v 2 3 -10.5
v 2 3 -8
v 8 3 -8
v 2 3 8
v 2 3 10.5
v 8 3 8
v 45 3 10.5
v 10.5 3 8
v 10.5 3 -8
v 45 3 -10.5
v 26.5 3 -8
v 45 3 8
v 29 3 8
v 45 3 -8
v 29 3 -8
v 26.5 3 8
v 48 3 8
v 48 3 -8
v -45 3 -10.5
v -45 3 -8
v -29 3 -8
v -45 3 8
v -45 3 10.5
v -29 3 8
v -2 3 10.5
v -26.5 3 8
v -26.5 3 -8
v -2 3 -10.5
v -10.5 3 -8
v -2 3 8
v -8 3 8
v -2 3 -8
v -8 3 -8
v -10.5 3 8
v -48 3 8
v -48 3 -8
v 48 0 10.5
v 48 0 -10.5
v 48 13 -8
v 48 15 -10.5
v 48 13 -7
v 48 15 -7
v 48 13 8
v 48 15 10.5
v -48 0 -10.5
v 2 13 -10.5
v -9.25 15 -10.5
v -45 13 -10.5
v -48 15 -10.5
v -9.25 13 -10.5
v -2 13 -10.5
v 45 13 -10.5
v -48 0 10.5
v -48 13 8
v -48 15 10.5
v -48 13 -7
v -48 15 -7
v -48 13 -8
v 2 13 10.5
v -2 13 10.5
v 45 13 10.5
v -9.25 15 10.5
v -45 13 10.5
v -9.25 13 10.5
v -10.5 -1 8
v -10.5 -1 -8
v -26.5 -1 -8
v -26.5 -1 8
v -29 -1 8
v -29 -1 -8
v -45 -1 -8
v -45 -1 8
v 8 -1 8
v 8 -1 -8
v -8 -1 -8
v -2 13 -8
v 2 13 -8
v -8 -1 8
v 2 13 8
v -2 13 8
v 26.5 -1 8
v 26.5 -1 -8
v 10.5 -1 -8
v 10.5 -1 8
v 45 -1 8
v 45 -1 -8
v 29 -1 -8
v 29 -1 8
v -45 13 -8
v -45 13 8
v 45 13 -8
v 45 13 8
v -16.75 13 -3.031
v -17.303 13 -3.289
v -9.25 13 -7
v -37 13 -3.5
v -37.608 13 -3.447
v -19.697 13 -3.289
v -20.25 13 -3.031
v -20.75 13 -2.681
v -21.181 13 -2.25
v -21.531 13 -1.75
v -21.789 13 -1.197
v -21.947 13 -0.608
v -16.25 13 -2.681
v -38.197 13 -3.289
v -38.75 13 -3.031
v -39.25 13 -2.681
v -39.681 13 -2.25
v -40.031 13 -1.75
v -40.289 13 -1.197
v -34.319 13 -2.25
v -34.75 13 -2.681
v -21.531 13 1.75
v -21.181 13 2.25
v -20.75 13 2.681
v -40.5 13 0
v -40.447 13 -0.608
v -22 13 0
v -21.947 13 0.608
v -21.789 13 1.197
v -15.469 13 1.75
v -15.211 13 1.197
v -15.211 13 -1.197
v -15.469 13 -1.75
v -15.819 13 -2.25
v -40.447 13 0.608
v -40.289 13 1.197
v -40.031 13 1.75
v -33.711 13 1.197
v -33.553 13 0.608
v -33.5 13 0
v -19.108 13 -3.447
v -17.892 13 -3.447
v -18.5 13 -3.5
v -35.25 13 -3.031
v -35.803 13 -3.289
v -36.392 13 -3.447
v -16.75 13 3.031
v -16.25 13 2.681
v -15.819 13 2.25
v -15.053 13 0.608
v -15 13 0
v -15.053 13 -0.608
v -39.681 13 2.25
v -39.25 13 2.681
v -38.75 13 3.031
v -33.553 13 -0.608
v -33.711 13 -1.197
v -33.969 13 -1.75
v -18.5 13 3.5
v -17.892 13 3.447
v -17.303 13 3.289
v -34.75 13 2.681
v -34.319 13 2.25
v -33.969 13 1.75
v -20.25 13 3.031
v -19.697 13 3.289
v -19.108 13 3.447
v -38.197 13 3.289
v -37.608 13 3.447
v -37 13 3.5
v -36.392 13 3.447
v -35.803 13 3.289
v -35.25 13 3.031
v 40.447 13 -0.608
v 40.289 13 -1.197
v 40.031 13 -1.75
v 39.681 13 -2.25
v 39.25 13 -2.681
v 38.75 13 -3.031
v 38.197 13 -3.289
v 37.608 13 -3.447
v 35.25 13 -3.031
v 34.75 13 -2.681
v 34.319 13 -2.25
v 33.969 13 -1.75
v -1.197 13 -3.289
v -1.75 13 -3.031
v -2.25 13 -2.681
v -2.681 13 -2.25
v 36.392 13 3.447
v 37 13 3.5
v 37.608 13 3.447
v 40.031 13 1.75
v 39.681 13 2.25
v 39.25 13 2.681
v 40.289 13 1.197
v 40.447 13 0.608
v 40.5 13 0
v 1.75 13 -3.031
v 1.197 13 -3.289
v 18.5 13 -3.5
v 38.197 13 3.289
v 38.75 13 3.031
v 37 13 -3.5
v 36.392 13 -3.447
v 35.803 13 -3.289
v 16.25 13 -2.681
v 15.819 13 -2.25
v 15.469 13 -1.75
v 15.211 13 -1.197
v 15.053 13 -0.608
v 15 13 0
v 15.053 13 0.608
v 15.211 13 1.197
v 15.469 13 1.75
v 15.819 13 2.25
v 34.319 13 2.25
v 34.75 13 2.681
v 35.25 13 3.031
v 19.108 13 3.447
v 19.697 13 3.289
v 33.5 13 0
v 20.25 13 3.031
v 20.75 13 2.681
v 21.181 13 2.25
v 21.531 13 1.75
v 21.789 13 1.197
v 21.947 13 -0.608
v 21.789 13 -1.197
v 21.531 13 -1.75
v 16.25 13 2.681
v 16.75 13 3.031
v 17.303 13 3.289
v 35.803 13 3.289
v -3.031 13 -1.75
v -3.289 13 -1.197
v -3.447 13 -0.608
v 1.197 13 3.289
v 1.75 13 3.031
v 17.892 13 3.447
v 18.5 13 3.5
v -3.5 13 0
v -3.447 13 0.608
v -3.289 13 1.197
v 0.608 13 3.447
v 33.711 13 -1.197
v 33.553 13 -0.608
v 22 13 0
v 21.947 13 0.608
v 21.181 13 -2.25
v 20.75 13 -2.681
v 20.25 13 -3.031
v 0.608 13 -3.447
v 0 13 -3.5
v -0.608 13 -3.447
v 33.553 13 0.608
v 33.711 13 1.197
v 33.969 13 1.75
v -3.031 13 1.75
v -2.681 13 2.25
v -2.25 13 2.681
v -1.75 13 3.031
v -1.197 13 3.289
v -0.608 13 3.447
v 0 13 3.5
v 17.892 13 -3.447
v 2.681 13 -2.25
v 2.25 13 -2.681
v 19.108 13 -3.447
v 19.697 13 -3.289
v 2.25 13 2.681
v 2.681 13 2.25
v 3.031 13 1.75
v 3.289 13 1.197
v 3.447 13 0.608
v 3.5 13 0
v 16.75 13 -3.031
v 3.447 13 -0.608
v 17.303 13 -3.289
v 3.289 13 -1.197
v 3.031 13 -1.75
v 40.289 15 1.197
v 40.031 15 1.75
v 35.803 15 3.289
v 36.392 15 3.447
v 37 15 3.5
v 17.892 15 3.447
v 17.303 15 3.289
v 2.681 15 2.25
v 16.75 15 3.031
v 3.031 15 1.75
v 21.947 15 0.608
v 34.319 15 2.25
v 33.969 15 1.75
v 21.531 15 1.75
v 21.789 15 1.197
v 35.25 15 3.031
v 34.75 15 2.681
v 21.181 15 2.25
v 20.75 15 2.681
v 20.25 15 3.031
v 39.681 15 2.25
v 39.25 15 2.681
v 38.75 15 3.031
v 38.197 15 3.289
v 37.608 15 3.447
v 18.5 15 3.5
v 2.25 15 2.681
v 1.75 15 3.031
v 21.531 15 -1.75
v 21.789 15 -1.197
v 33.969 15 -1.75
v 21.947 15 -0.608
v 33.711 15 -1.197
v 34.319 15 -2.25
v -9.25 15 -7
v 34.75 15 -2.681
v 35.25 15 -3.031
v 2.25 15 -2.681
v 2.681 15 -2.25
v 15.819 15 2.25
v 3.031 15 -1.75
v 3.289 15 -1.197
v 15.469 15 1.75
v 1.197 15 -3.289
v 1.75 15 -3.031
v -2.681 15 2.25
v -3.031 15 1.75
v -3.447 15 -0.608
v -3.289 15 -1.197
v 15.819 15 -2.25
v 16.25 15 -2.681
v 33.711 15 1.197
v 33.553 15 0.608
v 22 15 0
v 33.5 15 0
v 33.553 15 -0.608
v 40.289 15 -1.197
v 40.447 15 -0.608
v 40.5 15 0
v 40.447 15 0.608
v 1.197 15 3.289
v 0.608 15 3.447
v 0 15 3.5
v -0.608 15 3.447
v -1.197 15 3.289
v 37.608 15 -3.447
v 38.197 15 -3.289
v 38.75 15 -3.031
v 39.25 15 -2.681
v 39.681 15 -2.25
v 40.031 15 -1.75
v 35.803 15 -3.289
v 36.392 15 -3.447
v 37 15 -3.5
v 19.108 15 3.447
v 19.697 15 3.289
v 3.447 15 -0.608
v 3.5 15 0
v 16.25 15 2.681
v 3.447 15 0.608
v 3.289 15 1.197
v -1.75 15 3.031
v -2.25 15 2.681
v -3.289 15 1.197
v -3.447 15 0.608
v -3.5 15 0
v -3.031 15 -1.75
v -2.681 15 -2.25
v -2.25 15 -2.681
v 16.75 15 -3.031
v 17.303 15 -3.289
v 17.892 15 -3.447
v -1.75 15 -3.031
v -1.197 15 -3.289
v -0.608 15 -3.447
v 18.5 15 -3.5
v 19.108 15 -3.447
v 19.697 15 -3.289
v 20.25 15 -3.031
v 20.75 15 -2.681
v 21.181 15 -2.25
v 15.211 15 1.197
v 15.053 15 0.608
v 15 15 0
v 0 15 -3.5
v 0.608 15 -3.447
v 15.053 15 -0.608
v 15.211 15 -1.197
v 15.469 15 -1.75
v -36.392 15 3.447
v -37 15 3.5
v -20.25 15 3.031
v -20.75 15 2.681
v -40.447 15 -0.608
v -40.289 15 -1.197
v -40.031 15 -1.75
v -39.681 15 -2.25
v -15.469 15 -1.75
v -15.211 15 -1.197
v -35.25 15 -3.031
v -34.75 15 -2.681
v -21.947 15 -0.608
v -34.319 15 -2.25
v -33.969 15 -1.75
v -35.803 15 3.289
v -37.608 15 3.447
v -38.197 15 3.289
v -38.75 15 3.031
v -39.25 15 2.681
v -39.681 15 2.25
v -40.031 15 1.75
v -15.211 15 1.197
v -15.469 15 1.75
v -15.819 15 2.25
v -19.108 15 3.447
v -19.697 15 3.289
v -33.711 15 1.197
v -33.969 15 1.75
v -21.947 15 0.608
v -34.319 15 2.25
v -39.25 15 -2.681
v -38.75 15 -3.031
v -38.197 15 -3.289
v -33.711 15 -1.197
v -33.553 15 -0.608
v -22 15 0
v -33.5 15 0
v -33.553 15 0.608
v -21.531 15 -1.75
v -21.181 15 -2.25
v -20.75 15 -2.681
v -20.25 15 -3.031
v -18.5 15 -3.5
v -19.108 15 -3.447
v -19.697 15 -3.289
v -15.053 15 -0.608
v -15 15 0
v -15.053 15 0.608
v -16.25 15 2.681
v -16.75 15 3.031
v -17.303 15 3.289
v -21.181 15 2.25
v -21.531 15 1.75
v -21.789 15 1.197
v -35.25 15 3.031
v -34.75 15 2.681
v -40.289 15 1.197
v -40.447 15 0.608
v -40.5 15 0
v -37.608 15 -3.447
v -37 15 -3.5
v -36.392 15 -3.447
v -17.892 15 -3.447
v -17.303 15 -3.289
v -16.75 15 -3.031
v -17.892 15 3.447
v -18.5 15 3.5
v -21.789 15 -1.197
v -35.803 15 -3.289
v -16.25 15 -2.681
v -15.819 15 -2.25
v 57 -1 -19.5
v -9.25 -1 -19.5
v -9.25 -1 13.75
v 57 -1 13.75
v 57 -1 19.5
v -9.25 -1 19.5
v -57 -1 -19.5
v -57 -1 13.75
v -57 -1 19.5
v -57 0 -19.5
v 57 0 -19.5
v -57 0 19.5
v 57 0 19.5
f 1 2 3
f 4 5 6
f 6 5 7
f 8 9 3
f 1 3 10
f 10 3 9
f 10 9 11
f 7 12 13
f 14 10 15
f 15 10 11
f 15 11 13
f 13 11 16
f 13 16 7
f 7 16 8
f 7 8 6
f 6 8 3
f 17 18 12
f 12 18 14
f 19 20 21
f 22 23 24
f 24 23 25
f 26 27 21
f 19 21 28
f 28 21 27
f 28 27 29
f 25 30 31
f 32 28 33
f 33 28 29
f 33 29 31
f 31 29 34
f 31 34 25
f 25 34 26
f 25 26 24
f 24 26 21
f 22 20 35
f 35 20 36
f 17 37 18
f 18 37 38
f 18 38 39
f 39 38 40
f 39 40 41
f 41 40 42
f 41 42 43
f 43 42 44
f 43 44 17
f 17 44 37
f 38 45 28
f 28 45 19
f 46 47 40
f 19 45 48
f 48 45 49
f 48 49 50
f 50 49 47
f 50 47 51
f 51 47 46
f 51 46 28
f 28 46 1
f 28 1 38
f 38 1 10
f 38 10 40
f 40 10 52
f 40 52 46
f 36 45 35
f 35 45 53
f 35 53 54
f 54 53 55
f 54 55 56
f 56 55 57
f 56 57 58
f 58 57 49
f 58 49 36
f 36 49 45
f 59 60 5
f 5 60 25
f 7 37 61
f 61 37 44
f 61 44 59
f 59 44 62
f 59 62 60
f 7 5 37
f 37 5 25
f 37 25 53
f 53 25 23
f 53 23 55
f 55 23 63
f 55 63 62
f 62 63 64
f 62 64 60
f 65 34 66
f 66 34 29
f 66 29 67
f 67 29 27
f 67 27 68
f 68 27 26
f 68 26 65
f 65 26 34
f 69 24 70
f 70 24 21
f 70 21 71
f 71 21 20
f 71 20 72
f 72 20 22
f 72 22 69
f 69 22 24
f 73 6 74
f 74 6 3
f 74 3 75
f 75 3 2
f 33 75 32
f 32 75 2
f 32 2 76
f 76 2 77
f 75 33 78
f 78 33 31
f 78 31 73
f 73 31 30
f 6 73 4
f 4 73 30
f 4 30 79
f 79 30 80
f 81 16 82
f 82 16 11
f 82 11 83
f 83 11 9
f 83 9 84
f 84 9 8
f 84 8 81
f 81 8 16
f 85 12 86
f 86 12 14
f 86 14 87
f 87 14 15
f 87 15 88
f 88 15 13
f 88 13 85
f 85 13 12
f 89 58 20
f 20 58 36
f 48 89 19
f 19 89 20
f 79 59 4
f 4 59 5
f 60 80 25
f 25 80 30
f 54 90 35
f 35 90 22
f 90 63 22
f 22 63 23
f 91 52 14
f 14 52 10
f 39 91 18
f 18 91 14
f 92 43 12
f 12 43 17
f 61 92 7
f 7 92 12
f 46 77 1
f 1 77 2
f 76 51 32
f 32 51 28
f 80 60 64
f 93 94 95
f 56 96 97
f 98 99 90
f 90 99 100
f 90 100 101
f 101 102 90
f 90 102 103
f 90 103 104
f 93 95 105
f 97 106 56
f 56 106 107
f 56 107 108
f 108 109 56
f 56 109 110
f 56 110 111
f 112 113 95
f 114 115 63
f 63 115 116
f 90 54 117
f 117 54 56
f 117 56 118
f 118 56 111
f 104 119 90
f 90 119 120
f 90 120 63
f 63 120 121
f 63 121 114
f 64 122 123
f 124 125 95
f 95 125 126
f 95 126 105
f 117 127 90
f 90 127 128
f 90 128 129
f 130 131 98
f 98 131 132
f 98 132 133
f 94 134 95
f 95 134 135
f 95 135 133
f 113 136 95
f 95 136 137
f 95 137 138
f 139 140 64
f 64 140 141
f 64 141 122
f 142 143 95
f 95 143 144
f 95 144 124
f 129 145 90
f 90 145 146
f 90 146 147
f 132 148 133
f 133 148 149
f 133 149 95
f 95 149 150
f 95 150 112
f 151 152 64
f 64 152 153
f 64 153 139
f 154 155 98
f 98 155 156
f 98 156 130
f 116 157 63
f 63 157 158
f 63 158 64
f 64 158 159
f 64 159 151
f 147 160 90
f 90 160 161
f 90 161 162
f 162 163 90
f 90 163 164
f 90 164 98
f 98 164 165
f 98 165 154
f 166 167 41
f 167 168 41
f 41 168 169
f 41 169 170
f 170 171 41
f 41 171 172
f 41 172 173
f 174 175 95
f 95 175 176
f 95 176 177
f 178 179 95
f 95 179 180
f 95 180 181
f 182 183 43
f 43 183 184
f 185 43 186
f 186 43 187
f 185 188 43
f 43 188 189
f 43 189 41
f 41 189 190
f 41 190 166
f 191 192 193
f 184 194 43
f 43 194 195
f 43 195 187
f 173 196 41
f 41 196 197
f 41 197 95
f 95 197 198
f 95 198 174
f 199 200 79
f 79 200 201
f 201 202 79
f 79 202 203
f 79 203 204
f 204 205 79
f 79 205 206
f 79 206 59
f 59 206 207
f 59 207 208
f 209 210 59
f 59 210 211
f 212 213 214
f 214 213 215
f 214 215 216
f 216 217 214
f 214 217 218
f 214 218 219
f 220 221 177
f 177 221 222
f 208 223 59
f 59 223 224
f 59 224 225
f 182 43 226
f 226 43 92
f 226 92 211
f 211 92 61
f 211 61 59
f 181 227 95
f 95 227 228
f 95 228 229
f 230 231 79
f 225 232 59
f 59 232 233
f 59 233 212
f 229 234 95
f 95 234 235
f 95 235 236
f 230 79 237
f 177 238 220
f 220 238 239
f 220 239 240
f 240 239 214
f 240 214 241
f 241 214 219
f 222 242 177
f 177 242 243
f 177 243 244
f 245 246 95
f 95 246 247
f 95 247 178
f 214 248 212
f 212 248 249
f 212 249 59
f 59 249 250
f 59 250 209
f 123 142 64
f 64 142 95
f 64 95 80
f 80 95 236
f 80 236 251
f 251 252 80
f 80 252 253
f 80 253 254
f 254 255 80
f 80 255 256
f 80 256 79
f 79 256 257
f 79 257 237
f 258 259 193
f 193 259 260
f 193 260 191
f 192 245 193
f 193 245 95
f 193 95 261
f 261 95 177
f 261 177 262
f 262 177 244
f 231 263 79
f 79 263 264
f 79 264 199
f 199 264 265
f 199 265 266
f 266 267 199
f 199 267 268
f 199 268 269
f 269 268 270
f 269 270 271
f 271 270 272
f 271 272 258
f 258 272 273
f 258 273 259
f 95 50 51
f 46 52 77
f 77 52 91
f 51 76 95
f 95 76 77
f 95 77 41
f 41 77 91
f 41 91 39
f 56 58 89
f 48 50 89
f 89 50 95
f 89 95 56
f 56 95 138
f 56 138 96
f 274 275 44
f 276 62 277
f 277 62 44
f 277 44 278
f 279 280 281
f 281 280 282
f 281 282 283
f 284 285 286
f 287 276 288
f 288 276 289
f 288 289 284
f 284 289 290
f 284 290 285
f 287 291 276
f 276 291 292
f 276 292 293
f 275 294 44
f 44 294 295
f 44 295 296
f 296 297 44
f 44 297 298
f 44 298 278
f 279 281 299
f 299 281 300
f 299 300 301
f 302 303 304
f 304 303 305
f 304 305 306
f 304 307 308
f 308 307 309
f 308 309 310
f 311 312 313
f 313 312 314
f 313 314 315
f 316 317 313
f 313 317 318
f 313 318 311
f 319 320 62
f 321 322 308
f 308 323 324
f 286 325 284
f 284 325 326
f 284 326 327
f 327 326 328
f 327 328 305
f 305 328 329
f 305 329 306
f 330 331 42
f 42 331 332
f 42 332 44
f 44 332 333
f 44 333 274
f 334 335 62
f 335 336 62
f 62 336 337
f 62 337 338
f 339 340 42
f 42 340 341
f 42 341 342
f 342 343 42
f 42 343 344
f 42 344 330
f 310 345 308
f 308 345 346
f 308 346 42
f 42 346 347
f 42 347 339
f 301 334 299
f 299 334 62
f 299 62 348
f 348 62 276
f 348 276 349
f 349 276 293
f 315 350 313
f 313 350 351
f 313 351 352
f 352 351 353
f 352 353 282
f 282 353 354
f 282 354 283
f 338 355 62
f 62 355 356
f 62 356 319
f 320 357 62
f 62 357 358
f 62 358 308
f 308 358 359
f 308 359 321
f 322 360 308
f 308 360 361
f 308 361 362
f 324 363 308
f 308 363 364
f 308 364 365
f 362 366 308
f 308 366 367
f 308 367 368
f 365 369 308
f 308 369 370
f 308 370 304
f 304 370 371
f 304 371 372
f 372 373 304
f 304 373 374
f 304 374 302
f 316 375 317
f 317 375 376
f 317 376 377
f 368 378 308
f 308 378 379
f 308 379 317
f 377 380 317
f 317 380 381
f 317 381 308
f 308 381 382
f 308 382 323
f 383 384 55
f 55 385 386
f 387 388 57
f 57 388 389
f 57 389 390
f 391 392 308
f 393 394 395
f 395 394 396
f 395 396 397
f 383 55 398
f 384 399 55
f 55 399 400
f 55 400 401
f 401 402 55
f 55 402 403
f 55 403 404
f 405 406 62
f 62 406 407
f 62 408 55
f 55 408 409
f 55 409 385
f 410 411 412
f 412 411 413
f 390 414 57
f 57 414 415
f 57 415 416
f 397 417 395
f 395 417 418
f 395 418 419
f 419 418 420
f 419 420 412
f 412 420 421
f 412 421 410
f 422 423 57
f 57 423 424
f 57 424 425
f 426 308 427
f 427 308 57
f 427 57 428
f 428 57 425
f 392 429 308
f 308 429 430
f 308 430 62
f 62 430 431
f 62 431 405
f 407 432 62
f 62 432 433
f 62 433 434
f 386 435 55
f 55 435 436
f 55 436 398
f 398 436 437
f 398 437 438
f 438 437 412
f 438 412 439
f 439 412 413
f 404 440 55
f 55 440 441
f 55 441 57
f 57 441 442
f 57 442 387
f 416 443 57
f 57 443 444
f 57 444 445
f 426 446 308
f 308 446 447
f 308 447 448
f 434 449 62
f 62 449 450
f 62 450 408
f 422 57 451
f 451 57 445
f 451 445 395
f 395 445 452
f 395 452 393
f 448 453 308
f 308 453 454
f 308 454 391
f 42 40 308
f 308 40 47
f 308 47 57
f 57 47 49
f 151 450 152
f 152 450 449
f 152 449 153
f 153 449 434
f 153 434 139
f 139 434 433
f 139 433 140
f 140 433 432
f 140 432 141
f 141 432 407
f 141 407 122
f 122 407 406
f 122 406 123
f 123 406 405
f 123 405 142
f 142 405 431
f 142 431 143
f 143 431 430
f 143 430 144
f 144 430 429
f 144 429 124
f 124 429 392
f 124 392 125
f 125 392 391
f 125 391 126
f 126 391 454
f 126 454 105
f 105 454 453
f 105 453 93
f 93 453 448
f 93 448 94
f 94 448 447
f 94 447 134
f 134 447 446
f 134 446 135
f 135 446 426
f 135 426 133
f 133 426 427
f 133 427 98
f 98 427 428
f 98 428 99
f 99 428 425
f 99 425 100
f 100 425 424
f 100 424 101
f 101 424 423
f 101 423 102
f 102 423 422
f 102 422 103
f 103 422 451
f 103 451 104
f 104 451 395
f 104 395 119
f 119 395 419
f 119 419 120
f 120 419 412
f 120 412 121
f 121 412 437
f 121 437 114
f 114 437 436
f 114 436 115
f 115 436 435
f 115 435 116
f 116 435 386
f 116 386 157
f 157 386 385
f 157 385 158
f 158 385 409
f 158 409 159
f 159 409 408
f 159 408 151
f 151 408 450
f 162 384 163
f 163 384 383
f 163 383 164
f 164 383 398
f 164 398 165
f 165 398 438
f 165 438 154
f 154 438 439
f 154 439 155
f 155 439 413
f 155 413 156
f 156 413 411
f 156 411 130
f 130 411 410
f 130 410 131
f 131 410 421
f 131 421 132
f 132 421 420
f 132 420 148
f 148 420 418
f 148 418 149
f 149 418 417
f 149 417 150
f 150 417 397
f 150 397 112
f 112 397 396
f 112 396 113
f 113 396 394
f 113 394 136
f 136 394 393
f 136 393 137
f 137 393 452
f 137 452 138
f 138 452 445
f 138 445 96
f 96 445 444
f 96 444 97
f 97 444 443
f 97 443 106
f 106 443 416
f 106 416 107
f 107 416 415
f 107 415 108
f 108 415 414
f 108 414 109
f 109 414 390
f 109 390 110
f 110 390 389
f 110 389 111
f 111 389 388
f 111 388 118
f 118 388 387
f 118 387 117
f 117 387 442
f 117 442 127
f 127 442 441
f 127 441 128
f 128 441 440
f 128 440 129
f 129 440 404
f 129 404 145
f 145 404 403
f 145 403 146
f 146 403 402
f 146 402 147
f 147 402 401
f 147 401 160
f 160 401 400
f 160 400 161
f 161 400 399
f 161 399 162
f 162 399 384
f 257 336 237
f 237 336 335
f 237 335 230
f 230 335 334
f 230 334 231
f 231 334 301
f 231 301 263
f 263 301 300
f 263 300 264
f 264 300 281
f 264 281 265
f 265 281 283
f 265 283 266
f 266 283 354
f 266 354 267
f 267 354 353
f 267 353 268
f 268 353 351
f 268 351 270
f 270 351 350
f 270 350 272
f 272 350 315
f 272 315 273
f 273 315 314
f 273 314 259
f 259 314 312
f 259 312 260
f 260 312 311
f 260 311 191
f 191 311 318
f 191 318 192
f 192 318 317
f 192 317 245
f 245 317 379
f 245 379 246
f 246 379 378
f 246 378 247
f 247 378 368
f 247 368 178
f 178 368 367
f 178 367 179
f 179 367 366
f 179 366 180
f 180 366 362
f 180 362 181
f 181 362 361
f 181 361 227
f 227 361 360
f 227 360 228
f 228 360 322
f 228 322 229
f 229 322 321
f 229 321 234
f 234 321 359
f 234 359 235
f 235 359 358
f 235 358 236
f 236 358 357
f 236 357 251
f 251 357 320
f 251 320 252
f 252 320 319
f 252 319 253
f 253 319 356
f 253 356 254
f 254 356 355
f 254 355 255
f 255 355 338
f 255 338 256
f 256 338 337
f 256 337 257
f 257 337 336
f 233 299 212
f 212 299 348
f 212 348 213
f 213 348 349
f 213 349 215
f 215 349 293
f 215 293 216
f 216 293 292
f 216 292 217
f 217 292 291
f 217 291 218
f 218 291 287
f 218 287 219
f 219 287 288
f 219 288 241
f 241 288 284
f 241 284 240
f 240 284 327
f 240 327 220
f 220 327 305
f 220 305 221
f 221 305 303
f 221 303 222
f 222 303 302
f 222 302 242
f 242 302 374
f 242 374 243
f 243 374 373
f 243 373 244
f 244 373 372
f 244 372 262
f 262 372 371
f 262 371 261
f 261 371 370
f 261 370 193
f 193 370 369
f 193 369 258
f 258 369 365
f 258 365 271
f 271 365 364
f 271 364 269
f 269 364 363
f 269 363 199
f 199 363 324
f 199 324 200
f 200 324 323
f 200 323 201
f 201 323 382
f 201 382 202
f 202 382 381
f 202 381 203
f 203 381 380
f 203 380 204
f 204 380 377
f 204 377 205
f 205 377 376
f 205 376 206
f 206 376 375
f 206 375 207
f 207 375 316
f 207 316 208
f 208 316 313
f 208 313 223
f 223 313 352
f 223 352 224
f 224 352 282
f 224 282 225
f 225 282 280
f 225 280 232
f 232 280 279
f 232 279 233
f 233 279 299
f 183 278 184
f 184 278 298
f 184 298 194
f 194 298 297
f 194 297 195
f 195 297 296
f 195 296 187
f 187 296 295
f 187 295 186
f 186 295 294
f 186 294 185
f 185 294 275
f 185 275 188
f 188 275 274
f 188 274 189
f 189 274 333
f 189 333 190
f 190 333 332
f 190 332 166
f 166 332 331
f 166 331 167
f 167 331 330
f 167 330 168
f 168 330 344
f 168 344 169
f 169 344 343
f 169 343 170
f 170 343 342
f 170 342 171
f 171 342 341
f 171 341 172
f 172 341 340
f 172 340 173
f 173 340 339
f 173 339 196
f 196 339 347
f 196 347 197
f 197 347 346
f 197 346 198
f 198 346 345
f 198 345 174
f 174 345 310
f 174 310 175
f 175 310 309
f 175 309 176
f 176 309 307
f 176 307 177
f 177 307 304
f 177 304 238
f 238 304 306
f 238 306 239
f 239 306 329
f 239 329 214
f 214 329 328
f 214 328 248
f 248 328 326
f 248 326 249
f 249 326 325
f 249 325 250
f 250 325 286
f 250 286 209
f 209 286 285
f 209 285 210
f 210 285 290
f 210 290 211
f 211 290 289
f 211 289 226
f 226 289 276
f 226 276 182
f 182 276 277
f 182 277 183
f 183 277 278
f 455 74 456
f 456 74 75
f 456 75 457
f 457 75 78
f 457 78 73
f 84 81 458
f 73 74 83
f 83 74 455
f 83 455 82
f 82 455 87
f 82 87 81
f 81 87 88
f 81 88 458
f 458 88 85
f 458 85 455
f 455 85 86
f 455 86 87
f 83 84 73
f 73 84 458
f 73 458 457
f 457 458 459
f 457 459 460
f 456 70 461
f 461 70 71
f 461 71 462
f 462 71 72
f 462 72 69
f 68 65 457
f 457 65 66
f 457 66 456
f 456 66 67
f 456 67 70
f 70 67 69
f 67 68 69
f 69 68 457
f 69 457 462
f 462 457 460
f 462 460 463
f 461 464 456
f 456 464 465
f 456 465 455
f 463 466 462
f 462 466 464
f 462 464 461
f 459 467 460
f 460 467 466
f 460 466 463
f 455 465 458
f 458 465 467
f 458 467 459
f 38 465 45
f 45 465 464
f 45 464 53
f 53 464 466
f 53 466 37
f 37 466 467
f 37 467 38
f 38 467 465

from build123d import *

# Parameters (mm, degrees)
SKETCH1_W               = 96
SKETCH1_H               = 21
BOSS_EXTRUDE1_DEPTH     = 3
CUT_EXTRUDE3_DEPTH      = 7
CUT_EXTRUDE3_DEPTH_BACK = 7
SKETCH2_W               = 16
SKETCH2_H               = 16
SKETCH5_W               = 3
SKETCH5_H               = 2.5
SKETCH5_W_2             = 4
BOSS_EXTRUDE5_DEPTH     = 10
SKETCH6_W               = 96
SKETCH6_H               = 21
BOSS_EXTRUDE6_DEPTH     = 2
SKETCH7_R               = 3.5
CUT_EXTRUDE5_DEPTH      = 2
SKETCH9_W               = 114
SKETCH9_H               = 39
BOSS_EXTRUDE7_DEPTH     = 1
SKETCH10_W              = 16
SKETCH10_H              = 16
CUT_EXTRUDE6_DEPTH      = 1


with BuildPart() as part:
    # Sketch1 → Boss-Extrude1 (new body)
    with BuildSketch(Plane(origin=(0, 0, 0), x_dir=(1, 0, 0), z_dir=(0, 1, 0))):
        Rectangle(SKETCH1_W, SKETCH1_H)
    extrude(amount=BOSS_EXTRUDE1_DEPTH)

    # Sketch2 → Cut-Extrude3 (cut, two sides: drawn at the far end of the back side and taken through both)
    with BuildSketch(Plane(origin=(0, 3, 0), x_dir=(1, 0, 0), z_dir=(0, 1, 0)).offset(-CUT_EXTRUDE3_DEPTH_BACK)):
        Rectangle(SKETCH2_W, SKETCH2_H)
        with Locations((-37, 0)):
            Rectangle(SKETCH2_W, SKETCH2_H)
        with Locations((-18.5, 0)):
            Rectangle(SKETCH2_W, SKETCH2_H)
        with Locations((18.5, 0)):
            Rectangle(SKETCH2_W, SKETCH2_H)
        with Locations((37, 0)):
            Rectangle(SKETCH2_W, SKETCH2_H)
    extrude(amount=CUT_EXTRUDE3_DEPTH + CUT_EXTRUDE3_DEPTH_BACK, mode=Mode.SUBTRACT)

    # Sketch5 → Boss-Extrude5 (add)
    with BuildSketch(Plane(origin=(0, 3, 0), x_dir=(1, 0, 0), z_dir=(0, 1, 0))):
        with Locations((-46.5, 9.25)):
            Rectangle(SKETCH5_W, SKETCH5_H)
        with Locations((0, 9.25)):
            Rectangle(SKETCH5_W_2, SKETCH5_H)
        with Locations((-46.5, -9.25)):
            Rectangle(SKETCH5_W, SKETCH5_H)
        with Locations((46.5, 9.25)):
            Rectangle(SKETCH5_W, SKETCH5_H)
        with Locations((0, -9.25)):
            Rectangle(SKETCH5_W_2, SKETCH5_H)
        with Locations((46.5, -9.25)):
            Rectangle(SKETCH5_W, SKETCH5_H)
    extrude(amount=BOSS_EXTRUDE5_DEPTH)

    # Sketch6 → Boss-Extrude6 (add)
    with BuildSketch(Plane(origin=(0, 13, 0), x_dir=(1, 0, 0), z_dir=(0, 1, 0))):
        Rectangle(SKETCH6_W, SKETCH6_H)
    extrude(amount=BOSS_EXTRUDE6_DEPTH)

    # Sketch7 → Cut-Extrude5 (cut)
    with BuildSketch(Plane(origin=(0, 15, 0), x_dir=(1, 0, 0), z_dir=(0, 1, 0))):
        with Locations((-37, 0)):
            Circle(SKETCH7_R)
        with Locations((-18.5, 0)):
            Circle(SKETCH7_R)
        Circle(SKETCH7_R)
        with Locations((18.5, 0)):
            Circle(SKETCH7_R)
        with Locations((37, 0)):
            Circle(SKETCH7_R)
    extrude(amount=-CUT_EXTRUDE5_DEPTH, mode=Mode.SUBTRACT)

    # Sketch9 → Boss-Extrude7 (add)
    with BuildSketch(Plane.XZ):
        Rectangle(SKETCH9_W, SKETCH9_H)
    extrude(amount=BOSS_EXTRUDE7_DEPTH)

    # Sketch10 → Cut-Extrude6 (cut)
    with BuildSketch(Plane.XZ.offset(1)):
        with Locations((-37, 0)):
            Rectangle(SKETCH10_W, SKETCH10_H)
        with Locations((-18.5, 0)):
            Rectangle(SKETCH10_W, SKETCH10_H)
        Rectangle(SKETCH10_W, SKETCH10_H)
        with Locations((18.5, 0)):
            Rectangle(SKETCH10_W, SKETCH10_H)
        with Locations((37, 0)):
            Rectangle(SKETCH10_W, SKETCH10_H)
    extrude(amount=-CUT_EXTRUDE6_DEPTH, mode=Mode.SUBTRACT)


solid = part.part
